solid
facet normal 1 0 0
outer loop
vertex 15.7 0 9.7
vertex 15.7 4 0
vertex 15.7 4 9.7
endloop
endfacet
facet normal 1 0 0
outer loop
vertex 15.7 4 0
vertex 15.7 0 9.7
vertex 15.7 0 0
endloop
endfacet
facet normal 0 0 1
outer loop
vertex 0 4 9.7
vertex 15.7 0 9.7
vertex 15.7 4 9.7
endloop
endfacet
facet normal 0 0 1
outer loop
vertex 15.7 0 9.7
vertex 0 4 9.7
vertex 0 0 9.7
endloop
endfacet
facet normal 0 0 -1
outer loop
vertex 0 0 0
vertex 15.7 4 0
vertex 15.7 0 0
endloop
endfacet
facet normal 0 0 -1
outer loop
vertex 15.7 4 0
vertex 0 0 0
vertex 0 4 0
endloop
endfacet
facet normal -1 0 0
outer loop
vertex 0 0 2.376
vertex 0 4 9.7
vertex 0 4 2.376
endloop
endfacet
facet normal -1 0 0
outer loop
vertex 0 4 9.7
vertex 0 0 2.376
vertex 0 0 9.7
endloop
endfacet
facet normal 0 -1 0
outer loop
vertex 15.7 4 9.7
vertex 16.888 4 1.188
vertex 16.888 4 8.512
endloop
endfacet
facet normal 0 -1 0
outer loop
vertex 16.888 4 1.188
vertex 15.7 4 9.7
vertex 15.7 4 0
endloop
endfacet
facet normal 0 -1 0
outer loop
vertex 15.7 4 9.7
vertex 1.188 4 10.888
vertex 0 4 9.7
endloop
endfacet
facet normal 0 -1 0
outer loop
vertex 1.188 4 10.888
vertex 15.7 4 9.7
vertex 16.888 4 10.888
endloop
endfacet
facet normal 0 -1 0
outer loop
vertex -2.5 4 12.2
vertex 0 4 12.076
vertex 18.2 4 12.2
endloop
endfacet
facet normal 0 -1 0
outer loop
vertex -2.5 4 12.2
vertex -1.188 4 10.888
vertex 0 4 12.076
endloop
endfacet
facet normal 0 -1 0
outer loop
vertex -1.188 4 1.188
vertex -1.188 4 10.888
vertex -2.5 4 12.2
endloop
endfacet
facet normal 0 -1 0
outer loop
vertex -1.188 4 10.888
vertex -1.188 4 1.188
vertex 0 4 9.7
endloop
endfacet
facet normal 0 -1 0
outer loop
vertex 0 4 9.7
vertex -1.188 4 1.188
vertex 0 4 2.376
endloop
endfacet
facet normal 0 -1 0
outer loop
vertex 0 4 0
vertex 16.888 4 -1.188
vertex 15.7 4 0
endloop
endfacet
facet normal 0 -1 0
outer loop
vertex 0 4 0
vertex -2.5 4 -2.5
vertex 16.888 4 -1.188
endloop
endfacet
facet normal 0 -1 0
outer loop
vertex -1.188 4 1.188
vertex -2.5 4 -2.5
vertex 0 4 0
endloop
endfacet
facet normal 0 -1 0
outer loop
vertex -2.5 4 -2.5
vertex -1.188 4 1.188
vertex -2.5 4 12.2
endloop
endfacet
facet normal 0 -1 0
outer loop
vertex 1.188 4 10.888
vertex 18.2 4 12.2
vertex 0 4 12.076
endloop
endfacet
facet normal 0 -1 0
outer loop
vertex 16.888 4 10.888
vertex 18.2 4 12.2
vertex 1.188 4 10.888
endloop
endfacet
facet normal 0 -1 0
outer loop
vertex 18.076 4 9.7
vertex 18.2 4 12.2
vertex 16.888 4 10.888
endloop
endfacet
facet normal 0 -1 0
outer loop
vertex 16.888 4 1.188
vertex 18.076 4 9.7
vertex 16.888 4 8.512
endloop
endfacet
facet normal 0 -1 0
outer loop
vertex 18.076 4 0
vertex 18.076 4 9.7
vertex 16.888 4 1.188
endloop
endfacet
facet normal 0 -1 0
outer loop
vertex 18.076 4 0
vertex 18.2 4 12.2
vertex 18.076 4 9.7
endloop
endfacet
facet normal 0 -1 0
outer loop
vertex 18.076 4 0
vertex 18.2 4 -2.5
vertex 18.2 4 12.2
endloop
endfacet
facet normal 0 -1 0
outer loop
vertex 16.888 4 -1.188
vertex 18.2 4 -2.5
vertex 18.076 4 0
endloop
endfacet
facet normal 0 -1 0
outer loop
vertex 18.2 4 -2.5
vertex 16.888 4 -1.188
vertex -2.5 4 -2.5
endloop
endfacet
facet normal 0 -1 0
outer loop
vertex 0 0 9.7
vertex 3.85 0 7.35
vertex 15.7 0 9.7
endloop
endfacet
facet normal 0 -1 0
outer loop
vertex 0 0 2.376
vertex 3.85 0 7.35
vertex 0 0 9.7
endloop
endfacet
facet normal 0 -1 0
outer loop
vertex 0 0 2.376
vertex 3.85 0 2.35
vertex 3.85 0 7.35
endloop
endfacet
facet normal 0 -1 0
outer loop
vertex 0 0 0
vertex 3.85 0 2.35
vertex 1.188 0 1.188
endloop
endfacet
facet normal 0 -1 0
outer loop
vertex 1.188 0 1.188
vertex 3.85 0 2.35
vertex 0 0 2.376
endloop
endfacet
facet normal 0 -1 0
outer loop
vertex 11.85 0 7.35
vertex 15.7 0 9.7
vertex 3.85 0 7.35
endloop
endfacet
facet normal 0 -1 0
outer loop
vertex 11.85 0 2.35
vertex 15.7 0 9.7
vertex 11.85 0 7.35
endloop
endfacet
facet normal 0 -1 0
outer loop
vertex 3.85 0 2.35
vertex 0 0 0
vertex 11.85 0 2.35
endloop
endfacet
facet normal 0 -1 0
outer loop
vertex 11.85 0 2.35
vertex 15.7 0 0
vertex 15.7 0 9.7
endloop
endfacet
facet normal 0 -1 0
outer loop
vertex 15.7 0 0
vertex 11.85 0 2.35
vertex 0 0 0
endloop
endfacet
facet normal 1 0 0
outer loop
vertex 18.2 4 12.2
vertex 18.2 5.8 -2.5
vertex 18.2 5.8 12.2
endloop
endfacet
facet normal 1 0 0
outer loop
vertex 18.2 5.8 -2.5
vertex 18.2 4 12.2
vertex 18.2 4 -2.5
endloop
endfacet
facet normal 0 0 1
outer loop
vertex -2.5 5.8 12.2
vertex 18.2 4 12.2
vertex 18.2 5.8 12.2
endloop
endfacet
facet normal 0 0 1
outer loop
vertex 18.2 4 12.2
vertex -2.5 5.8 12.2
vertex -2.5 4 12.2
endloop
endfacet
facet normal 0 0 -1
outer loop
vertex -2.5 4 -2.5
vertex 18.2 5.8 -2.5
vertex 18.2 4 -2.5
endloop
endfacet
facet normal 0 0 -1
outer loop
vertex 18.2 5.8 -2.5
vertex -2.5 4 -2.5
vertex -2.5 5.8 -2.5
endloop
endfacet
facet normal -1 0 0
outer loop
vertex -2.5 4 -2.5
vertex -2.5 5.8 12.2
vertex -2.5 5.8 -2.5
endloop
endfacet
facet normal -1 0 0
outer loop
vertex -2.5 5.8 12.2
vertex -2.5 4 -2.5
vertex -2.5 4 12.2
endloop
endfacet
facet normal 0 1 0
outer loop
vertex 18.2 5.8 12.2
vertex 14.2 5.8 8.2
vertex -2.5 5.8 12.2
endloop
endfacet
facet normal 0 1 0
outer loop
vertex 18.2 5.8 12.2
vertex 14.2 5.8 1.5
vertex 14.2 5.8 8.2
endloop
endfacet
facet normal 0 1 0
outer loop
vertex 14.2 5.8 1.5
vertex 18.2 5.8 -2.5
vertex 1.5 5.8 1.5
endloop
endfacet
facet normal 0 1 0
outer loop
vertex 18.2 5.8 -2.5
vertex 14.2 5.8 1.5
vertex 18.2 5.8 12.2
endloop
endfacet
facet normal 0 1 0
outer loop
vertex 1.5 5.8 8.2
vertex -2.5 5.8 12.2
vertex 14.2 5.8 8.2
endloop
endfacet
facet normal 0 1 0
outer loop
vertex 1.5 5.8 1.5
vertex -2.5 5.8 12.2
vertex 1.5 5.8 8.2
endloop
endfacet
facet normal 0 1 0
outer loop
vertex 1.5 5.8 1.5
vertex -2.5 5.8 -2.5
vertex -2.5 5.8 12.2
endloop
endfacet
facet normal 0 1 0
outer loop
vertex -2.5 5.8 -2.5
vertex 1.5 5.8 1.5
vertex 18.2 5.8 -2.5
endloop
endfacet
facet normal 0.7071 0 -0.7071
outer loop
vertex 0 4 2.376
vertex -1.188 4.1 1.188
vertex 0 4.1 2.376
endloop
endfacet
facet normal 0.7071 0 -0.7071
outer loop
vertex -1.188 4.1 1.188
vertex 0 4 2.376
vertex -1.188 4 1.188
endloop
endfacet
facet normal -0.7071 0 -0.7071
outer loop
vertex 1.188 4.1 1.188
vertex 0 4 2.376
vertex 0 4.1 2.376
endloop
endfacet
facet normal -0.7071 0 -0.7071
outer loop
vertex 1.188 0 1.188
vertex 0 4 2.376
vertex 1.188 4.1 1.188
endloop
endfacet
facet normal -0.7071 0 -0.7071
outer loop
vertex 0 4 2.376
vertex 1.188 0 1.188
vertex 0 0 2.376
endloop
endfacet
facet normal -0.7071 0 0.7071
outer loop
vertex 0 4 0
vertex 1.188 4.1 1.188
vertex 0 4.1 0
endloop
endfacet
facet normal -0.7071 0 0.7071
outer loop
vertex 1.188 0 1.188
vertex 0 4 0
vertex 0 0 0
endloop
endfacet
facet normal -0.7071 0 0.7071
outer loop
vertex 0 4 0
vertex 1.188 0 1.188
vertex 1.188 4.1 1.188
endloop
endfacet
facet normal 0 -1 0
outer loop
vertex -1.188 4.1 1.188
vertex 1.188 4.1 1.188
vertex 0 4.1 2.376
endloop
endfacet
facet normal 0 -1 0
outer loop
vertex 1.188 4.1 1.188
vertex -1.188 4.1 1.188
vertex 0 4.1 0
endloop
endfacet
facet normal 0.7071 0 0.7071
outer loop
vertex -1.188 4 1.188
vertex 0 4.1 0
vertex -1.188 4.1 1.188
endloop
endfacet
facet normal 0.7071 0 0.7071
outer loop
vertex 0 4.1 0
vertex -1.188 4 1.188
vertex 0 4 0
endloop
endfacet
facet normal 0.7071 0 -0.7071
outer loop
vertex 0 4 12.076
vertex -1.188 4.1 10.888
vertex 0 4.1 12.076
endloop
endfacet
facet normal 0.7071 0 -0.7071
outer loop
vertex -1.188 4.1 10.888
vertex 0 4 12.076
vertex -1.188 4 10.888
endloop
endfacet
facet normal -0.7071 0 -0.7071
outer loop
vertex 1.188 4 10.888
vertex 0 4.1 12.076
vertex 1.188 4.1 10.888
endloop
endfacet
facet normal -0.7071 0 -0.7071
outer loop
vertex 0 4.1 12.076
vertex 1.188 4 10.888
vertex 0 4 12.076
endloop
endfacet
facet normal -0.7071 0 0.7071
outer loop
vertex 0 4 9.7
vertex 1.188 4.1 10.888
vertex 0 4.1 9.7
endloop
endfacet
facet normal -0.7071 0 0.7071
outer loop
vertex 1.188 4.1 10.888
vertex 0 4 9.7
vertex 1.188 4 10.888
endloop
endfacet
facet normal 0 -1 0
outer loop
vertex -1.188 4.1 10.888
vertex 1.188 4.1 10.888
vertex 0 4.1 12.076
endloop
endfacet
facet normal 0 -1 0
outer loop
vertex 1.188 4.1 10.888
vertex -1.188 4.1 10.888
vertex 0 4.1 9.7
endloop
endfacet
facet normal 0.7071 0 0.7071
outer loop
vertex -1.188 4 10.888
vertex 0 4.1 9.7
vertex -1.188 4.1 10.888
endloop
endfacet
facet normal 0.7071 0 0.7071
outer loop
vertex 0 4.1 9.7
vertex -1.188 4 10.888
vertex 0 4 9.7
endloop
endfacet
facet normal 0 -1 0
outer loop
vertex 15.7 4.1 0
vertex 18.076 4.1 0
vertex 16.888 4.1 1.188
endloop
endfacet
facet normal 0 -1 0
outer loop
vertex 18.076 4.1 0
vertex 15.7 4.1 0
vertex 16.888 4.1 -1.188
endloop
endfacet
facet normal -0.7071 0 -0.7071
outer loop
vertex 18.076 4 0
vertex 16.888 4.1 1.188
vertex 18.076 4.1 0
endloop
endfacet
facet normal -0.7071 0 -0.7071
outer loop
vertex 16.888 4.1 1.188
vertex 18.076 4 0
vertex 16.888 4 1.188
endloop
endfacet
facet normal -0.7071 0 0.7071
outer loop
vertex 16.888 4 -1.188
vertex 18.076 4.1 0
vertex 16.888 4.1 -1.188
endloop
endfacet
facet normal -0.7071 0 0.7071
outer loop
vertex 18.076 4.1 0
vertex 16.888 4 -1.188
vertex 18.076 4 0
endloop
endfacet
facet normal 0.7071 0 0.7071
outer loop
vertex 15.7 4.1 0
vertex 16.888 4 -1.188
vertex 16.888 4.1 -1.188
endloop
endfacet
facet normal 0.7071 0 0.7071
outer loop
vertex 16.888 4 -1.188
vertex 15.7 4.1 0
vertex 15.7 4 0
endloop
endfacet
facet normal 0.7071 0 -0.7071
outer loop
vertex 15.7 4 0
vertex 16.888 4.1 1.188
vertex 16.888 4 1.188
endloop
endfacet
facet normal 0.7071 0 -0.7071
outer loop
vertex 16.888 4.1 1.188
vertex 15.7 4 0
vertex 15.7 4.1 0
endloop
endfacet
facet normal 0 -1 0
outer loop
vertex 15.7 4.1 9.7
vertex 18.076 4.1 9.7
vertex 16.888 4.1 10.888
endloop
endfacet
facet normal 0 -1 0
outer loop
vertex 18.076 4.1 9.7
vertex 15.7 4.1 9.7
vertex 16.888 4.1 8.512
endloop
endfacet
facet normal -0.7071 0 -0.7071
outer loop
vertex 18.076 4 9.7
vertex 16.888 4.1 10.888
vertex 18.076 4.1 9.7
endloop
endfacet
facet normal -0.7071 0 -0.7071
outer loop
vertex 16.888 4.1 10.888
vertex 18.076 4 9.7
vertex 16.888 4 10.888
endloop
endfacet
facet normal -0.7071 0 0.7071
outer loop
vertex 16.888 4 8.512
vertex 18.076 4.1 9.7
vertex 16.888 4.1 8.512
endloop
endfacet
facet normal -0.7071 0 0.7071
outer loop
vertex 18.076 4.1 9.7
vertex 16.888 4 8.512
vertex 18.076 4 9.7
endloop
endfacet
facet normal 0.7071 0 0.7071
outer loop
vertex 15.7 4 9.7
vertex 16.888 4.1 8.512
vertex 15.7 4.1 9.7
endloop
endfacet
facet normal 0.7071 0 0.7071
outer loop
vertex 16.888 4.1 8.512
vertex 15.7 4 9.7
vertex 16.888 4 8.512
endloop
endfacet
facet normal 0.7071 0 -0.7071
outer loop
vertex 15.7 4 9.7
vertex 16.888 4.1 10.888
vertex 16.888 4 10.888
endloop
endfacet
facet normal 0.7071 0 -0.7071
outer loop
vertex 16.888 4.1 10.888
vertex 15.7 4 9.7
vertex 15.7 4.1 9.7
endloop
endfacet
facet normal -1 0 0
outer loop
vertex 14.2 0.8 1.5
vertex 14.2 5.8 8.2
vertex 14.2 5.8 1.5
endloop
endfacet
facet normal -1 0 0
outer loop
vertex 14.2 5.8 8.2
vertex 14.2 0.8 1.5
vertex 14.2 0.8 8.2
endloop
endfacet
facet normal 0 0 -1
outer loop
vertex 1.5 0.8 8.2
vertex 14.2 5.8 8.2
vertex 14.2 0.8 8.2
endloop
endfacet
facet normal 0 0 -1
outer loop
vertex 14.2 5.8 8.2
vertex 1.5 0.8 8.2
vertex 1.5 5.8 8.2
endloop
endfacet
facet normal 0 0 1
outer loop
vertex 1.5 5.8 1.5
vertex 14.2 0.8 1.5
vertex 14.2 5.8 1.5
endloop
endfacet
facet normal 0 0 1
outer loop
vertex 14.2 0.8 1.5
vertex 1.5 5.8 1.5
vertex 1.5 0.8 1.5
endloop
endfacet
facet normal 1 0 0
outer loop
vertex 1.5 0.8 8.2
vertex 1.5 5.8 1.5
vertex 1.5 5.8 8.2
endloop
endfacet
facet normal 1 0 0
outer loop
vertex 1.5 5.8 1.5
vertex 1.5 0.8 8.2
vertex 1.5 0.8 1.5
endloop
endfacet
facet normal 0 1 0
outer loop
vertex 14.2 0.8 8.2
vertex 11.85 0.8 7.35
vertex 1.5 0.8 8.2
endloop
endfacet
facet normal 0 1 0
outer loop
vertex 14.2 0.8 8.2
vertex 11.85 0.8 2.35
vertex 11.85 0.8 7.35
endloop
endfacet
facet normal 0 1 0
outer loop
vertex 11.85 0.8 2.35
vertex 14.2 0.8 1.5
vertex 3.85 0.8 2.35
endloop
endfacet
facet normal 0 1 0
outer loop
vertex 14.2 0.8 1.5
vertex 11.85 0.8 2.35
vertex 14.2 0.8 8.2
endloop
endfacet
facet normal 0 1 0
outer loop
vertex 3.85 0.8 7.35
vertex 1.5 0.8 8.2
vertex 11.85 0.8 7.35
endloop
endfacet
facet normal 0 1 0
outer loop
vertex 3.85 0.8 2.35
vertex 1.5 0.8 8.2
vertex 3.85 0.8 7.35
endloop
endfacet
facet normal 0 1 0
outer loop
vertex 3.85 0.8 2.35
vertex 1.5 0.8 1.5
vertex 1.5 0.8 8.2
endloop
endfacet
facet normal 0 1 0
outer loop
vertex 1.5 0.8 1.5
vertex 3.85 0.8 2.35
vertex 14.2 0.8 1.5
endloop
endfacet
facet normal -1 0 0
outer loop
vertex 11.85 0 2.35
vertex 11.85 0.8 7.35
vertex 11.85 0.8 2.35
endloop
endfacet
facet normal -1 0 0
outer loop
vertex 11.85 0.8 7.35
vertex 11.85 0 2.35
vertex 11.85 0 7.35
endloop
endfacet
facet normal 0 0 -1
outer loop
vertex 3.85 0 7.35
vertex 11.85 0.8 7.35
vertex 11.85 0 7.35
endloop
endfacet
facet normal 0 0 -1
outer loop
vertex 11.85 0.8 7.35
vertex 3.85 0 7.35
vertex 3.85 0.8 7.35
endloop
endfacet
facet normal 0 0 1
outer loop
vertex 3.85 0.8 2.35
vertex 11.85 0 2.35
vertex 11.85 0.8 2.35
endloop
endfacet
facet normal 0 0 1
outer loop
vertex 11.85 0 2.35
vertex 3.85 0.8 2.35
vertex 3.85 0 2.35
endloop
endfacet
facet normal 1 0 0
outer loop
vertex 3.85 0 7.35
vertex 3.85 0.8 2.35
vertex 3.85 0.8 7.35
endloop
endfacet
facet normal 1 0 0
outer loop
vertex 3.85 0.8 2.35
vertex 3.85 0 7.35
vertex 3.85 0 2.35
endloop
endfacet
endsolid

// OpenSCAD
// ============================================================
//  MSE-6 — LED Eye Diffuser  (print 2×)
//  Screen-accurate rectangular "eye" lights for MSE-6 droid.
//  Press-fit into two slots cut in the front face of the
//  bottom shell.
//
//  MSE-6 eye proportions: ~14×8mm rectangular window
//  LED behind: any 5mm LED or small LED strip segment
//
//  Features:
//    – Frosted diffuser face (thin wall for light transmission)
//    – Interior LED holder pocket (5mm LED or 10mm strip)
//    – Flange for mounting in shell wall cutout
//    – Two variants: left eye, right eye (mirrored)
//
//  Shell cutout: 16 × 10mm per eye
//  Position: X≈88 and X≈116, Z≈35 (front wall, ~35mm height)
// ============================================================
$fn = 32;

MIRROR = false;  // set true for right eye

// Shell wall cutout
cut_w     = 16.0;
cut_h     = 10.0;
wall_t    =  4.0;

// Bezel body
body_w    = cut_w - 0.3;
body_h    = cut_h - 0.3;
body_d    = wall_t;

// Flange
flange_ow =  2.5;
flange_t  =  1.8;

// Diffuser face (thin for light transmission)
diff_t    =  0.8;   // thin wall — use clear/translucent filament

// LED pocket behind diffuser
led_w     =  8.0;   // 5mm LED fits, or strip segment
led_h     =  5.0;
led_d     =  6.0;   // pocket depth

// Decorative border on face (thicker surround)
border    =  1.5;

module led_eye() {
    mirror_v = MIRROR ? [1,0,0] : [0,0,0];
    mirror(mirror_v)
    difference() {
        union() {
            // Body
            cube([body_w, body_d, body_h]);
            // Flange (interior)
            translate([-flange_ow, body_d, -flange_ow])
                cube([body_w + flange_ow*2, flange_t,
                      body_h + flange_ow*2]);
        }

        // Diffuser window (thin front wall remains)
        translate([border, diff_t, border])
            cube([body_w - border*2,
                  body_d - diff_t + flange_t + 0.1,
                  body_h - border*2]);

        // LED pocket (blind hole from interior)
        translate([body_w/2 - led_w/2, body_d - led_d, body_h/2 - led_h/2])
            cube([led_w, led_d + 0.1, led_h]);

        // Corner chamfers on face
        chamf = 1.2;
        for (cx=[0, body_w], cz=[0, body_h])
            translate([cx, -0.1, cz])
            rotate([0, cx==0 ? -45 : 45, 0])
                cube([chamf*1.4, body_d + 0.2, chamf*1.4]);
    }
}

led_eye();
